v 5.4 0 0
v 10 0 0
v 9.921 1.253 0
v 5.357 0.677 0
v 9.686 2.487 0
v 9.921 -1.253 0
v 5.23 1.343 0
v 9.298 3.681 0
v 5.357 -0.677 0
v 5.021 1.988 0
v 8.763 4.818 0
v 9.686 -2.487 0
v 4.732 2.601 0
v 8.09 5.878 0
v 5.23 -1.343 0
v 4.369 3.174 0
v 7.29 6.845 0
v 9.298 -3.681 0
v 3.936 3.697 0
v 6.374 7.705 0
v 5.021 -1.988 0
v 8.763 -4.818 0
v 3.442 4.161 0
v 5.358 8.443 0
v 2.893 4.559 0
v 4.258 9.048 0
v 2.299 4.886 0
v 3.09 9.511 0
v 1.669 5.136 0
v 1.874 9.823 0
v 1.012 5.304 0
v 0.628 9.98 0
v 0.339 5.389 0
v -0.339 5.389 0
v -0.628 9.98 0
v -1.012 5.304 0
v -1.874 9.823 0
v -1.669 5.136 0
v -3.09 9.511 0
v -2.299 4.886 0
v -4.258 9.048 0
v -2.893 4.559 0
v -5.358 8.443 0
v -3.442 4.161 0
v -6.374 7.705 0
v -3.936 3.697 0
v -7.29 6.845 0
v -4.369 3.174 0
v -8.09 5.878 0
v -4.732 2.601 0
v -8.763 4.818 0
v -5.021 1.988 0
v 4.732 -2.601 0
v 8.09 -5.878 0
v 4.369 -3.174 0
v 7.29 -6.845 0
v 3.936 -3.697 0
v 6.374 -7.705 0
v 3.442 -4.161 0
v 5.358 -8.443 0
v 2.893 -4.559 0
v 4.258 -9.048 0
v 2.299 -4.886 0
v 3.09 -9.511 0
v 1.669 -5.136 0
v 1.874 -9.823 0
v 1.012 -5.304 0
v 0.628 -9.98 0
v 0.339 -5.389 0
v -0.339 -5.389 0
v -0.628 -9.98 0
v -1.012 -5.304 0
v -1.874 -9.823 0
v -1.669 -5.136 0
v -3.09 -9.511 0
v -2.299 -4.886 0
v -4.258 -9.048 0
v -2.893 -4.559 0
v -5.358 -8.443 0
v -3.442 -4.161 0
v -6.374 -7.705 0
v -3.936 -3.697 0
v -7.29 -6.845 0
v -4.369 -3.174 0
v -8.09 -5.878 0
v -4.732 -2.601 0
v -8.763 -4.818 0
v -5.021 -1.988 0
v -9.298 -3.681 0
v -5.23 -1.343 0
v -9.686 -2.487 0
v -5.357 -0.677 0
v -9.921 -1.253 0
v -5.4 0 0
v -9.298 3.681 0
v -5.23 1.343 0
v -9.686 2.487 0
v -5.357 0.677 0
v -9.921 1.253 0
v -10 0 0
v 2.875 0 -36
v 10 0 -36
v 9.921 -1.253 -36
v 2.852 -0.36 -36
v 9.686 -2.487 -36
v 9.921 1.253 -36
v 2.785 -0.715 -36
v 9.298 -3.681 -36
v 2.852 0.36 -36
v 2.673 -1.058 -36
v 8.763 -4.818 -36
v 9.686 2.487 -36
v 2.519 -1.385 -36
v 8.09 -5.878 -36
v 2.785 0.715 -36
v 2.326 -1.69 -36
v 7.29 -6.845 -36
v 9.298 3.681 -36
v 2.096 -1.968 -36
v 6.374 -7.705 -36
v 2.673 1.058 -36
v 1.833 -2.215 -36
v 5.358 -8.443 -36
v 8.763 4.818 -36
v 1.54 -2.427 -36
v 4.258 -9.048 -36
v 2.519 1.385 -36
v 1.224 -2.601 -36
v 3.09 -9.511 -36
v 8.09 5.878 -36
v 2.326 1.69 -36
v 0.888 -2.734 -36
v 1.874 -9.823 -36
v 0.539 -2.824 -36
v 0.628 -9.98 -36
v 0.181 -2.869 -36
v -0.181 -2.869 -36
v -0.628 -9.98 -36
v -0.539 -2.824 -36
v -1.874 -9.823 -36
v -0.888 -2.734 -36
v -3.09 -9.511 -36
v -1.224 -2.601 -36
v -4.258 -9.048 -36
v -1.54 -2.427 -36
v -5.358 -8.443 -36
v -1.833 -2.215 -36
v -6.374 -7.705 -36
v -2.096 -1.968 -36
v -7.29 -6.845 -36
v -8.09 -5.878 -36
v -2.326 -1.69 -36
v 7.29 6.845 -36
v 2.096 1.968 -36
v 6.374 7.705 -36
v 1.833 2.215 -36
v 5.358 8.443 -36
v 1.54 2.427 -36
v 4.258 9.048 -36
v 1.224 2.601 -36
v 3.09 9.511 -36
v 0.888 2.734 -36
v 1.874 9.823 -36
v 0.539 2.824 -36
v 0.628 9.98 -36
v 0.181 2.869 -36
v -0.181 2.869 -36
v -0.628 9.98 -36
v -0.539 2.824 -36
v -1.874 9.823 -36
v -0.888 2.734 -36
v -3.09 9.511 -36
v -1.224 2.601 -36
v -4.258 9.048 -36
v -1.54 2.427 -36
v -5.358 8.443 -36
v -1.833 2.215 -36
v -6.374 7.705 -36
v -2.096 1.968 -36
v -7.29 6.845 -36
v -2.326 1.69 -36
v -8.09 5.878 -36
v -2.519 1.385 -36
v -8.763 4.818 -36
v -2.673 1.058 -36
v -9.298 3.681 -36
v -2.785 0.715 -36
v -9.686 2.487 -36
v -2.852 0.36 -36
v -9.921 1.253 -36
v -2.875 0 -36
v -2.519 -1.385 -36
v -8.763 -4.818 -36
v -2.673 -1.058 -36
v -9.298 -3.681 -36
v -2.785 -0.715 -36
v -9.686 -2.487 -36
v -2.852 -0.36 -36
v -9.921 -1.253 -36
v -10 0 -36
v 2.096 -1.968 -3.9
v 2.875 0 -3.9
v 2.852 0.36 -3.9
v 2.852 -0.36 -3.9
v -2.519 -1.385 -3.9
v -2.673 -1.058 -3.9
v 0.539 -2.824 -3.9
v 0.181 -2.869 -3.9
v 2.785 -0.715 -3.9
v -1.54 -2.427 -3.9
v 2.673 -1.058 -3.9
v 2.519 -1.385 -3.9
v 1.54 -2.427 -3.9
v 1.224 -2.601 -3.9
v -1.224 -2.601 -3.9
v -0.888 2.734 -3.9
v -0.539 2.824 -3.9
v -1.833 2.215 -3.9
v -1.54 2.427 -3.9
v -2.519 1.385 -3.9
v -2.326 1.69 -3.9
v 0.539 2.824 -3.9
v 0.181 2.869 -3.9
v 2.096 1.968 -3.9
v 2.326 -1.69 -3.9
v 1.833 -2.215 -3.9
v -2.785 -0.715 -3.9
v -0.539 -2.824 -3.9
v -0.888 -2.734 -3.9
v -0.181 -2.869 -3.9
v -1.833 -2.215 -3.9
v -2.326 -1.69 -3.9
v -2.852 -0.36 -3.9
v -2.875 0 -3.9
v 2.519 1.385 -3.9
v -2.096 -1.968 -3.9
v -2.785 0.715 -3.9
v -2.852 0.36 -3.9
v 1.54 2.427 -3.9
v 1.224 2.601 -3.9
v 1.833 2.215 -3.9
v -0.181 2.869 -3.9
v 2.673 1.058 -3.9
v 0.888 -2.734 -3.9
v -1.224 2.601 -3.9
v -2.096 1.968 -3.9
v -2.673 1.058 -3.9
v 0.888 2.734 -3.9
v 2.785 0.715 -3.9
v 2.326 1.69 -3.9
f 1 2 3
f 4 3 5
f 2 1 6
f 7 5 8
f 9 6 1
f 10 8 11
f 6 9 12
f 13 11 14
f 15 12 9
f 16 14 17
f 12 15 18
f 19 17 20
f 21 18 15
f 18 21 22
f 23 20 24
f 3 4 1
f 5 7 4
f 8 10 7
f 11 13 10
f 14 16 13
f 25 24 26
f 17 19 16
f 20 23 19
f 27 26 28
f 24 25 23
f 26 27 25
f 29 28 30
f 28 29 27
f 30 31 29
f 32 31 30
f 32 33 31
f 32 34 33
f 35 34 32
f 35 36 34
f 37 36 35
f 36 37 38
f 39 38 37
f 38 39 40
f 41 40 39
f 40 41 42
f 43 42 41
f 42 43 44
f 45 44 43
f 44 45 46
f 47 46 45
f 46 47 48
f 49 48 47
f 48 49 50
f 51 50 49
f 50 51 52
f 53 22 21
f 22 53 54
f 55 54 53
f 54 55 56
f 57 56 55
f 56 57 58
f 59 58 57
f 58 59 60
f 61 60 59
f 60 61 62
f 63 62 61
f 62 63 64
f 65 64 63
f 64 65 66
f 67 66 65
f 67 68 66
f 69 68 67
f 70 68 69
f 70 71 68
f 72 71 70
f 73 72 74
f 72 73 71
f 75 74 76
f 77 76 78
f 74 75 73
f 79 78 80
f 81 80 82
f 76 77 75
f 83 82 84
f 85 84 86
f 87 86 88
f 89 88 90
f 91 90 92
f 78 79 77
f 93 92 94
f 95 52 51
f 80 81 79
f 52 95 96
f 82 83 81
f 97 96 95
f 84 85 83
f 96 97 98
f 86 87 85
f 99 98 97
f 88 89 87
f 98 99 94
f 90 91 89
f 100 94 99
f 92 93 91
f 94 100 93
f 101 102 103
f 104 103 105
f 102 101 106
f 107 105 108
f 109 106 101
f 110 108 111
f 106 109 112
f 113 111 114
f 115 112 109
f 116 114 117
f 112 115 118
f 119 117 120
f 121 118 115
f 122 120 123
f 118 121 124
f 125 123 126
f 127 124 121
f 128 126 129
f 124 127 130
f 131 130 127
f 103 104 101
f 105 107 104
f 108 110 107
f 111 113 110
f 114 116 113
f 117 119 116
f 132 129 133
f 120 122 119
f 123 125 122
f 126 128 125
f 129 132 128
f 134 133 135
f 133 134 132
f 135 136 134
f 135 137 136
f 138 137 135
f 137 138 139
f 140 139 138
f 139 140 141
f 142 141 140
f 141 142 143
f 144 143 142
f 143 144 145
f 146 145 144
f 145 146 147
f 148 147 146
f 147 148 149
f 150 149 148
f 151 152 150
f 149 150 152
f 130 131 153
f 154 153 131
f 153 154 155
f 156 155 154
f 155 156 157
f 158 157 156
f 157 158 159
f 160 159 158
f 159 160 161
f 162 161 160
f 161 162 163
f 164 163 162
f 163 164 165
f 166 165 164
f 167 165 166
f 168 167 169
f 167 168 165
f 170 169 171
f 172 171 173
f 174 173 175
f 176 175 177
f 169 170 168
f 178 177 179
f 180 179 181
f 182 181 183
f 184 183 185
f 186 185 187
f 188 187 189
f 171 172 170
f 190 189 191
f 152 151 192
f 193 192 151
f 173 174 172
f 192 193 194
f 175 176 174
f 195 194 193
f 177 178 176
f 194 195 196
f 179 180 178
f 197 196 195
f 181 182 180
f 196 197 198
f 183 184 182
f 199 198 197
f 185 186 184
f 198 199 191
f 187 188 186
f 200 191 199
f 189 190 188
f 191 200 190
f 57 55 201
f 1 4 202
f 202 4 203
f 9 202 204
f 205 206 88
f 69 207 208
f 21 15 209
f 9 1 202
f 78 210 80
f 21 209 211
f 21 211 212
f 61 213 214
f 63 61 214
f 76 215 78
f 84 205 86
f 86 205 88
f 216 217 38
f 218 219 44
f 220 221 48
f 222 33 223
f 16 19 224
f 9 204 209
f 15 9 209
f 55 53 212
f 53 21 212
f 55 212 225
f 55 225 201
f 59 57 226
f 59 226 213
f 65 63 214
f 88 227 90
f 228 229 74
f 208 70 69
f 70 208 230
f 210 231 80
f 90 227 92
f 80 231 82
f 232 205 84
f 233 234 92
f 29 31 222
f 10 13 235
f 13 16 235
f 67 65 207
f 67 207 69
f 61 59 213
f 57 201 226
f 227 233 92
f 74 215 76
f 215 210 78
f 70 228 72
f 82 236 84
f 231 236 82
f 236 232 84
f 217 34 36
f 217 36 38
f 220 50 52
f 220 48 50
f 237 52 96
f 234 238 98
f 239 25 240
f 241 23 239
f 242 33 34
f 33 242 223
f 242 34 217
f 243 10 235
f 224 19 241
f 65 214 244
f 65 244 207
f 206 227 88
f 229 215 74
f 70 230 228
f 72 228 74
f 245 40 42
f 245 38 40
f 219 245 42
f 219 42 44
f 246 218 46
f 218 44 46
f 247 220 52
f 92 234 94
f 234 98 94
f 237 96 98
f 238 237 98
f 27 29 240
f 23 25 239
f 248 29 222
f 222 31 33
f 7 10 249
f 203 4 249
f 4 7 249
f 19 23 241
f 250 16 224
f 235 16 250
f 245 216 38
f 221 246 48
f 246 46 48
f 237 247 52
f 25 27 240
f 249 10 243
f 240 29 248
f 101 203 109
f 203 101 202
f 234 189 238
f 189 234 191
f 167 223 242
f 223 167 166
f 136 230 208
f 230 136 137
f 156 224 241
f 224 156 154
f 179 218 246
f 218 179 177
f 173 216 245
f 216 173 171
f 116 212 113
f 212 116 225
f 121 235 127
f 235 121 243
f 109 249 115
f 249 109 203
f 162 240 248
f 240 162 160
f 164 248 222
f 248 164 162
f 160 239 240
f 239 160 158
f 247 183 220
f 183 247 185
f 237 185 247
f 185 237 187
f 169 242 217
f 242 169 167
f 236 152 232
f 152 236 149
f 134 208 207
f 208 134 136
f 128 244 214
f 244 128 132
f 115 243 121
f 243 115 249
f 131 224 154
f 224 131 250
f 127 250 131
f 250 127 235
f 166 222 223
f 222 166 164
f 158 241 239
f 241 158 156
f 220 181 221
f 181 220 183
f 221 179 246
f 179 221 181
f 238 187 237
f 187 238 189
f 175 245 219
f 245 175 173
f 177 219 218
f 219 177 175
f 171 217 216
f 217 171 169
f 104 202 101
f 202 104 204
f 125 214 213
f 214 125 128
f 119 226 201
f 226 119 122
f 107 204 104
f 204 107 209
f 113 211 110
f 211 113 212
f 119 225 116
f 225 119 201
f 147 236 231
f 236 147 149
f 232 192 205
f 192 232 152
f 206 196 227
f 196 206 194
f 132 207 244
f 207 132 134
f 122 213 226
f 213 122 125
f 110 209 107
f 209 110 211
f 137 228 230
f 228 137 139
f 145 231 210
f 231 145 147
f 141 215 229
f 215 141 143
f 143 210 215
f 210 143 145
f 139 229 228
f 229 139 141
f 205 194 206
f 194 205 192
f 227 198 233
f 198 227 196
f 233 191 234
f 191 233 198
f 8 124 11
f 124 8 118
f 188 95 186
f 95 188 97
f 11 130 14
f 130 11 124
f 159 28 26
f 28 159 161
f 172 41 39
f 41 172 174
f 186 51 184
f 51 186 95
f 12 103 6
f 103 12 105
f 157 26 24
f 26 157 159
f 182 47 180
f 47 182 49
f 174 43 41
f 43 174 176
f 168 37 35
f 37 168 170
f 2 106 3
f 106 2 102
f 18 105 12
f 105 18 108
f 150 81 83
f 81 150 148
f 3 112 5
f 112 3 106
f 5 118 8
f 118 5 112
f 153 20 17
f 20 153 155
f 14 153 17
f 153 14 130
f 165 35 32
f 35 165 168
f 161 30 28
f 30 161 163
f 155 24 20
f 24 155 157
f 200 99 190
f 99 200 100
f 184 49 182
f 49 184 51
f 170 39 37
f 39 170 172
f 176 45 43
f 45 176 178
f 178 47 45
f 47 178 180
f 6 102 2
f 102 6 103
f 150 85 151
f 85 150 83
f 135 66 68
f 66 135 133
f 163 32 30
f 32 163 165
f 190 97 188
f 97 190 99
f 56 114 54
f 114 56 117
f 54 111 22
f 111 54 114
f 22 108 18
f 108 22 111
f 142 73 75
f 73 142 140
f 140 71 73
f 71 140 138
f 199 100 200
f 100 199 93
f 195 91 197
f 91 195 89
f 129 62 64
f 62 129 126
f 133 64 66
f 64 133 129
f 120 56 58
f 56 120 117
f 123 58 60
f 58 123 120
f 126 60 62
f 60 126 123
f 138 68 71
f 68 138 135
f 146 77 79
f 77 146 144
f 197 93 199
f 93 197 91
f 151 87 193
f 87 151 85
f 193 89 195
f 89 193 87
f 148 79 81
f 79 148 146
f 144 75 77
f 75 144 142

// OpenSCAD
$fn = 50;


difference() {
	union() {
		translate(v = [0, 0, -36.0000000000]) {
			cylinder(h = 36, r = 10.0000000000);
		}
		cylinder(h = 0, r = 19.0000000000);
	}
	union() {
		translate(v = [0, 0, 0]) {
			rotate(a = [0, 0, 0]) {
				difference() {
					union() {
						#translate(v = [0, 0, -36.0000000000]) {
							cylinder(h = 36, r = 2.6000000000);
						}
						#translate(v = [0, 0, -3.9000000000]) {
							cylinder(h = 3.9000000000, r = 10.0000000000, r1 = 2.8750000000, r2 = 5.4000000000);
						}
						#translate(v = [0, 0, -36.0000000000]) {
							cylinder(h = 36, r = 2.8750000000);
						}
						#translate(v = [0, 0, -36.0000000000]) {
							cylinder(h = 36, r = 2.6000000000);
						}
					}
					union();
				}
			}
		}
	}
}
